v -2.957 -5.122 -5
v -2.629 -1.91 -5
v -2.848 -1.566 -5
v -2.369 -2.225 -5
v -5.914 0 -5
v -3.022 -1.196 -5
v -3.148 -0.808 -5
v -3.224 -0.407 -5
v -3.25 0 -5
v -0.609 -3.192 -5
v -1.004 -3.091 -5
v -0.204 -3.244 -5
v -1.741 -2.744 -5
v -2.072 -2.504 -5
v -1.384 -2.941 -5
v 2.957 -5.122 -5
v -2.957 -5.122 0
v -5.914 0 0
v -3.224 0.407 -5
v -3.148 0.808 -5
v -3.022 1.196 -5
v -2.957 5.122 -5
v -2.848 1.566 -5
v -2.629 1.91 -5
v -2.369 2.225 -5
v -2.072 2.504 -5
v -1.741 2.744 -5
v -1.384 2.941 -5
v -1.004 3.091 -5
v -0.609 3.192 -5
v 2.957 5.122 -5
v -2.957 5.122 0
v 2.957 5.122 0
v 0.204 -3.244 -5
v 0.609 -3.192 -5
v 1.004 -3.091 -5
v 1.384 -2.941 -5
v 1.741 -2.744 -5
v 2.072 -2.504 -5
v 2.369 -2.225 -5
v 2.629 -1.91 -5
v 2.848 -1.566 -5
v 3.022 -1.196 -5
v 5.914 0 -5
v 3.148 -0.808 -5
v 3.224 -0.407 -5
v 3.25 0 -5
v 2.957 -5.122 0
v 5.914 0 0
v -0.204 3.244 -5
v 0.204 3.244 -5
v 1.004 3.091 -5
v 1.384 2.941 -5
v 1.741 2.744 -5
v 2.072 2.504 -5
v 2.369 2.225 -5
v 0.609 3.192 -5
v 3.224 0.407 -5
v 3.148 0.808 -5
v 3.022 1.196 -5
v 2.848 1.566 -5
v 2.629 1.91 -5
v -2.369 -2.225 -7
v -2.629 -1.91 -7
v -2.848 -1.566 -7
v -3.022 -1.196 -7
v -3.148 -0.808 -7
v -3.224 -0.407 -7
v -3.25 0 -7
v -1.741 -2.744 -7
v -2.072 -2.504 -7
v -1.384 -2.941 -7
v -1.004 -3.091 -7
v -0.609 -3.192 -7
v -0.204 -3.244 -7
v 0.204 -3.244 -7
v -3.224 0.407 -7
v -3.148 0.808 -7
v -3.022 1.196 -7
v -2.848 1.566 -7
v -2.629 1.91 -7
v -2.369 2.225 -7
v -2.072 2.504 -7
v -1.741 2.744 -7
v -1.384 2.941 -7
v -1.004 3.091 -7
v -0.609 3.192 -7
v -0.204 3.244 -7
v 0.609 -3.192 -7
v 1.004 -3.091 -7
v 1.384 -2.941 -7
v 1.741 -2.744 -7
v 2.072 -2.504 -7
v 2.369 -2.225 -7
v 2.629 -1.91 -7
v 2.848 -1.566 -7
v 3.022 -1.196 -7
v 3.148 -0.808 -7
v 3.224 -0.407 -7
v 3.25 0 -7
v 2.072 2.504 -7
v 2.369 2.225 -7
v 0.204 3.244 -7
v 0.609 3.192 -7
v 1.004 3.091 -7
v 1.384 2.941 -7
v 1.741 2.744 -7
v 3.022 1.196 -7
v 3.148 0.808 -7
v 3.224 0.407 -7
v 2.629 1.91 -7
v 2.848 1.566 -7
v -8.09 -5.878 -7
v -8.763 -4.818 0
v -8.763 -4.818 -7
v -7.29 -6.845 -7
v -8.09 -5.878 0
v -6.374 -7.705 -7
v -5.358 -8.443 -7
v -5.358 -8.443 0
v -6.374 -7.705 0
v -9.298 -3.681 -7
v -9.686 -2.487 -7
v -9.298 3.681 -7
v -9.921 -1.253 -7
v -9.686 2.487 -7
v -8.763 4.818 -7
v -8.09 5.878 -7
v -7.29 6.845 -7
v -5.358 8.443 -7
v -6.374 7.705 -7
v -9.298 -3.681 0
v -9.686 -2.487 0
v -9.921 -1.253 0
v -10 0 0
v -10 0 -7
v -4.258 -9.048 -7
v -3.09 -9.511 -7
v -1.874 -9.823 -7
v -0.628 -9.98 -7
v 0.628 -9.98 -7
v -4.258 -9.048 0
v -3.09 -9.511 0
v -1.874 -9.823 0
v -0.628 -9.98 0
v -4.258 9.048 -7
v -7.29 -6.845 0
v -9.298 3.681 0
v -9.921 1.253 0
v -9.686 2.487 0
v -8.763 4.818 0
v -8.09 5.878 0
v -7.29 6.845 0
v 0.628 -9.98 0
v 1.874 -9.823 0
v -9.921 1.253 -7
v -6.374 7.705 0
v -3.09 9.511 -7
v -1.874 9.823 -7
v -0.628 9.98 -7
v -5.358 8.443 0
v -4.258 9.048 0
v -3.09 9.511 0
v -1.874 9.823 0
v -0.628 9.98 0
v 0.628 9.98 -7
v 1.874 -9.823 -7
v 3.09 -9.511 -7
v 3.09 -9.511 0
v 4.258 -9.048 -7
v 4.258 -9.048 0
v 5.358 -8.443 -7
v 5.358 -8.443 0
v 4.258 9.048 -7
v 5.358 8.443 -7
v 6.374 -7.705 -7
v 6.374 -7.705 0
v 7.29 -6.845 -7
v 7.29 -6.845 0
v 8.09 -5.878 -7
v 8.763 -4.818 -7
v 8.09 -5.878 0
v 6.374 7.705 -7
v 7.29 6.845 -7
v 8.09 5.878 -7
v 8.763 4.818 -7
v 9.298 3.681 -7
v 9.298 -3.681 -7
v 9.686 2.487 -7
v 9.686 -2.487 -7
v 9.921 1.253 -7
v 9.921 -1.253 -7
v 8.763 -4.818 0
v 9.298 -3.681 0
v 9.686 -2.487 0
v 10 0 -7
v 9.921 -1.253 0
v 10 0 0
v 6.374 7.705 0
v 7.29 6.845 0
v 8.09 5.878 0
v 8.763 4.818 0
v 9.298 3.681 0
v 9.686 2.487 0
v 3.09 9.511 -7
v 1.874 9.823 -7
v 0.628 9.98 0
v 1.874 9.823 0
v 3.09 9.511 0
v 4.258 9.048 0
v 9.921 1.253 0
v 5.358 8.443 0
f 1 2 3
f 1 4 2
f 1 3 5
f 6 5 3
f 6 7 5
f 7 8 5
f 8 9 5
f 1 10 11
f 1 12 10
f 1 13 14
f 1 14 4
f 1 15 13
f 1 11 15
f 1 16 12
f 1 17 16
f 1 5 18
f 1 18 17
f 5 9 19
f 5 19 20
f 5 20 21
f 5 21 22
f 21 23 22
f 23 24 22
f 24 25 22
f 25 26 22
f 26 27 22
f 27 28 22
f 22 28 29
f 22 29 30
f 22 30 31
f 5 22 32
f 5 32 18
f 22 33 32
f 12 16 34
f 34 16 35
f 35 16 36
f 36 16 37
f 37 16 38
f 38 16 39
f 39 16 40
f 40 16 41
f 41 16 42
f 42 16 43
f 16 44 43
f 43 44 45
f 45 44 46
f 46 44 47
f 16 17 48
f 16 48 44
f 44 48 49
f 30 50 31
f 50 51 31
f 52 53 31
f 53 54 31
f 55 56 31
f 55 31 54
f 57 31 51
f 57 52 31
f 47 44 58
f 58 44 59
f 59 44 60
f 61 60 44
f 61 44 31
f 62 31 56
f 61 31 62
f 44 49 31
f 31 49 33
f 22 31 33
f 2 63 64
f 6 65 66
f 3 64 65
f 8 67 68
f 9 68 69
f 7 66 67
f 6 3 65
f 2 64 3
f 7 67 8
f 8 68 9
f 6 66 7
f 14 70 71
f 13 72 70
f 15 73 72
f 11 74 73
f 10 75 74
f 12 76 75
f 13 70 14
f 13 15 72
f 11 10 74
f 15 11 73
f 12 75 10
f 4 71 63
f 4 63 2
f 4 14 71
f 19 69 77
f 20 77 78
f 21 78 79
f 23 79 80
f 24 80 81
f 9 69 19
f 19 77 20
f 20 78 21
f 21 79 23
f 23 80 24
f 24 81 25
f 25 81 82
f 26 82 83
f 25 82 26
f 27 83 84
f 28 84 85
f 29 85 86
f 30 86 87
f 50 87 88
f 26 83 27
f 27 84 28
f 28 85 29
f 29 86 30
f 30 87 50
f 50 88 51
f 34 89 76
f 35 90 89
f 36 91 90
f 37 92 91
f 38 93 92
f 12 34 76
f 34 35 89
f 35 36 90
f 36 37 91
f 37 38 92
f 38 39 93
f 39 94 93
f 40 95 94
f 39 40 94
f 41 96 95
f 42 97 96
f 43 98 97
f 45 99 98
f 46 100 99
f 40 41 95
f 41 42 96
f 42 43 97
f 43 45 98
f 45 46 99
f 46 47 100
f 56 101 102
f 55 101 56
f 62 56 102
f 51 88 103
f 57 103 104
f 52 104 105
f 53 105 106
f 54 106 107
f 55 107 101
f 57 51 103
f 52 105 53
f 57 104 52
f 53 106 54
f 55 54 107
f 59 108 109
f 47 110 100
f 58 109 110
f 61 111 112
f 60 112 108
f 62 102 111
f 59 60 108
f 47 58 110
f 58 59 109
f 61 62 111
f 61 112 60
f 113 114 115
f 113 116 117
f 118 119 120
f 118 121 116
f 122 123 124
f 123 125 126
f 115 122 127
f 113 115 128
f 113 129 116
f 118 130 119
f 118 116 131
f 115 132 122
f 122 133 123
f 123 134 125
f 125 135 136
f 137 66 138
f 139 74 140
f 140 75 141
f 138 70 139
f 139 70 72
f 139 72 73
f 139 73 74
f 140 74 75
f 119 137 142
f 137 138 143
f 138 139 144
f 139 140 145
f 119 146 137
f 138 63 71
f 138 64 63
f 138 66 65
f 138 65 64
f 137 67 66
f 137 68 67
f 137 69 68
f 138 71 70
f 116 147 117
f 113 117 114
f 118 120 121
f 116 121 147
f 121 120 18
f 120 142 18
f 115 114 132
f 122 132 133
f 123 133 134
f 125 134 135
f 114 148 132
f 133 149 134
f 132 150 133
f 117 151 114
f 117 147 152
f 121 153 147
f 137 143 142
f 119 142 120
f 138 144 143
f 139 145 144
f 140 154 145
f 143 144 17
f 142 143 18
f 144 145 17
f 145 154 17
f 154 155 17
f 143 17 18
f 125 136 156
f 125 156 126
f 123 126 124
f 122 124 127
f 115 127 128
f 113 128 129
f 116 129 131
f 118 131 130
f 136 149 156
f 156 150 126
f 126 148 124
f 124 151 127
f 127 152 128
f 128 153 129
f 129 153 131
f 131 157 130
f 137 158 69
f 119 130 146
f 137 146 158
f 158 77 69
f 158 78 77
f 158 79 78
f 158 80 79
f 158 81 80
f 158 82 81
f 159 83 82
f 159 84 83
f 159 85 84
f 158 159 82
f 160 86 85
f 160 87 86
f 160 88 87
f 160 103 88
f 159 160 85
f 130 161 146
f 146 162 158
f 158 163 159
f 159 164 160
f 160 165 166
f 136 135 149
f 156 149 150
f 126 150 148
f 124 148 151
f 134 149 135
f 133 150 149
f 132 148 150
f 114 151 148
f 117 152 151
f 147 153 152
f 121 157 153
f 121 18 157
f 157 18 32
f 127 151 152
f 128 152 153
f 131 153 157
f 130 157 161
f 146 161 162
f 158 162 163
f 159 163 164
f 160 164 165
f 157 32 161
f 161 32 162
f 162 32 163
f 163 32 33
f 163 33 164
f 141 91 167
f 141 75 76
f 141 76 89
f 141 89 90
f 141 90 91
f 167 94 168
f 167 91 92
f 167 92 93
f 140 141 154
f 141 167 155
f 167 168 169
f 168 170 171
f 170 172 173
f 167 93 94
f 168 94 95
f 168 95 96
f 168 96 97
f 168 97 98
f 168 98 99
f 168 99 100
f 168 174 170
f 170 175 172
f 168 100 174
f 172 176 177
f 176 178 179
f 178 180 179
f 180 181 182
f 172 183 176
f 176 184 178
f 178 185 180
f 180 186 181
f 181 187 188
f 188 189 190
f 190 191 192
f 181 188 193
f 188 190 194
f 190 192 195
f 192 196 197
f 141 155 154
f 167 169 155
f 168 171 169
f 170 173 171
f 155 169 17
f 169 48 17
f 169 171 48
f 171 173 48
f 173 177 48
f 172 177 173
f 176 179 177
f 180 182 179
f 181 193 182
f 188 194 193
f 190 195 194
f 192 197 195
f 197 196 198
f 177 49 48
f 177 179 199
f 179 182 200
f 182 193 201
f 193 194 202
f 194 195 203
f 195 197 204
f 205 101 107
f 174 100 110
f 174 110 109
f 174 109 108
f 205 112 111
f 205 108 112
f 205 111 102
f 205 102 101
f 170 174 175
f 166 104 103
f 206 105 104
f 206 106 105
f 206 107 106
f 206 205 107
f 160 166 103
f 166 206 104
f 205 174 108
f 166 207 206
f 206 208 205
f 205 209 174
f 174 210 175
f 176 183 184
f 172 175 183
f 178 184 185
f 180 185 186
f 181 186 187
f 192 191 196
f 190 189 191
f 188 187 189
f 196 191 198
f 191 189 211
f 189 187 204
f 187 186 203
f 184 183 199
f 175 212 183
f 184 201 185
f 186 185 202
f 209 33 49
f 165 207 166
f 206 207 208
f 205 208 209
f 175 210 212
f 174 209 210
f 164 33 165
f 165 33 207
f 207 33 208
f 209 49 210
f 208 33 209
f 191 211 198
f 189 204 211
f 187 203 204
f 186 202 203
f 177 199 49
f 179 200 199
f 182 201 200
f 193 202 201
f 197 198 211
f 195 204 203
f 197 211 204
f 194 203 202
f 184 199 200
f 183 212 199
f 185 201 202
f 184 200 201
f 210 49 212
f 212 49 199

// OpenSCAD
$fn = 50;

difference() {
	union() {
		translate(v = [0, 0, -7.0]) {
			cylinder(h = 7.0, r = 10.0);
		}
	}
	union() {
		translate(v = [0, 0, 0]) {
			rotate(a = [0, 0, 0]) {
				difference() {
					union() {
						translate(v = [0, 0, -5]) {
							linear_extrude(height = 5) {
								polygon(points = [[5.914249999999999, 0.0], [2.957125, 5.1218907443321156], [-2.9571249999999982, 5.1218907443321156], [-5.914249999999999, 7.242867331857232e-16], [-2.9571250000000022, -5.121890744332115], [2.9571249999999956, -5.121890744332118]]);
							}
						}
					}
					union();
				}
			}
		}
		#translate(v = [0, 0, -100.0]) {
			cylinder(h = 200, r = 3.25);
		}
	}
}
